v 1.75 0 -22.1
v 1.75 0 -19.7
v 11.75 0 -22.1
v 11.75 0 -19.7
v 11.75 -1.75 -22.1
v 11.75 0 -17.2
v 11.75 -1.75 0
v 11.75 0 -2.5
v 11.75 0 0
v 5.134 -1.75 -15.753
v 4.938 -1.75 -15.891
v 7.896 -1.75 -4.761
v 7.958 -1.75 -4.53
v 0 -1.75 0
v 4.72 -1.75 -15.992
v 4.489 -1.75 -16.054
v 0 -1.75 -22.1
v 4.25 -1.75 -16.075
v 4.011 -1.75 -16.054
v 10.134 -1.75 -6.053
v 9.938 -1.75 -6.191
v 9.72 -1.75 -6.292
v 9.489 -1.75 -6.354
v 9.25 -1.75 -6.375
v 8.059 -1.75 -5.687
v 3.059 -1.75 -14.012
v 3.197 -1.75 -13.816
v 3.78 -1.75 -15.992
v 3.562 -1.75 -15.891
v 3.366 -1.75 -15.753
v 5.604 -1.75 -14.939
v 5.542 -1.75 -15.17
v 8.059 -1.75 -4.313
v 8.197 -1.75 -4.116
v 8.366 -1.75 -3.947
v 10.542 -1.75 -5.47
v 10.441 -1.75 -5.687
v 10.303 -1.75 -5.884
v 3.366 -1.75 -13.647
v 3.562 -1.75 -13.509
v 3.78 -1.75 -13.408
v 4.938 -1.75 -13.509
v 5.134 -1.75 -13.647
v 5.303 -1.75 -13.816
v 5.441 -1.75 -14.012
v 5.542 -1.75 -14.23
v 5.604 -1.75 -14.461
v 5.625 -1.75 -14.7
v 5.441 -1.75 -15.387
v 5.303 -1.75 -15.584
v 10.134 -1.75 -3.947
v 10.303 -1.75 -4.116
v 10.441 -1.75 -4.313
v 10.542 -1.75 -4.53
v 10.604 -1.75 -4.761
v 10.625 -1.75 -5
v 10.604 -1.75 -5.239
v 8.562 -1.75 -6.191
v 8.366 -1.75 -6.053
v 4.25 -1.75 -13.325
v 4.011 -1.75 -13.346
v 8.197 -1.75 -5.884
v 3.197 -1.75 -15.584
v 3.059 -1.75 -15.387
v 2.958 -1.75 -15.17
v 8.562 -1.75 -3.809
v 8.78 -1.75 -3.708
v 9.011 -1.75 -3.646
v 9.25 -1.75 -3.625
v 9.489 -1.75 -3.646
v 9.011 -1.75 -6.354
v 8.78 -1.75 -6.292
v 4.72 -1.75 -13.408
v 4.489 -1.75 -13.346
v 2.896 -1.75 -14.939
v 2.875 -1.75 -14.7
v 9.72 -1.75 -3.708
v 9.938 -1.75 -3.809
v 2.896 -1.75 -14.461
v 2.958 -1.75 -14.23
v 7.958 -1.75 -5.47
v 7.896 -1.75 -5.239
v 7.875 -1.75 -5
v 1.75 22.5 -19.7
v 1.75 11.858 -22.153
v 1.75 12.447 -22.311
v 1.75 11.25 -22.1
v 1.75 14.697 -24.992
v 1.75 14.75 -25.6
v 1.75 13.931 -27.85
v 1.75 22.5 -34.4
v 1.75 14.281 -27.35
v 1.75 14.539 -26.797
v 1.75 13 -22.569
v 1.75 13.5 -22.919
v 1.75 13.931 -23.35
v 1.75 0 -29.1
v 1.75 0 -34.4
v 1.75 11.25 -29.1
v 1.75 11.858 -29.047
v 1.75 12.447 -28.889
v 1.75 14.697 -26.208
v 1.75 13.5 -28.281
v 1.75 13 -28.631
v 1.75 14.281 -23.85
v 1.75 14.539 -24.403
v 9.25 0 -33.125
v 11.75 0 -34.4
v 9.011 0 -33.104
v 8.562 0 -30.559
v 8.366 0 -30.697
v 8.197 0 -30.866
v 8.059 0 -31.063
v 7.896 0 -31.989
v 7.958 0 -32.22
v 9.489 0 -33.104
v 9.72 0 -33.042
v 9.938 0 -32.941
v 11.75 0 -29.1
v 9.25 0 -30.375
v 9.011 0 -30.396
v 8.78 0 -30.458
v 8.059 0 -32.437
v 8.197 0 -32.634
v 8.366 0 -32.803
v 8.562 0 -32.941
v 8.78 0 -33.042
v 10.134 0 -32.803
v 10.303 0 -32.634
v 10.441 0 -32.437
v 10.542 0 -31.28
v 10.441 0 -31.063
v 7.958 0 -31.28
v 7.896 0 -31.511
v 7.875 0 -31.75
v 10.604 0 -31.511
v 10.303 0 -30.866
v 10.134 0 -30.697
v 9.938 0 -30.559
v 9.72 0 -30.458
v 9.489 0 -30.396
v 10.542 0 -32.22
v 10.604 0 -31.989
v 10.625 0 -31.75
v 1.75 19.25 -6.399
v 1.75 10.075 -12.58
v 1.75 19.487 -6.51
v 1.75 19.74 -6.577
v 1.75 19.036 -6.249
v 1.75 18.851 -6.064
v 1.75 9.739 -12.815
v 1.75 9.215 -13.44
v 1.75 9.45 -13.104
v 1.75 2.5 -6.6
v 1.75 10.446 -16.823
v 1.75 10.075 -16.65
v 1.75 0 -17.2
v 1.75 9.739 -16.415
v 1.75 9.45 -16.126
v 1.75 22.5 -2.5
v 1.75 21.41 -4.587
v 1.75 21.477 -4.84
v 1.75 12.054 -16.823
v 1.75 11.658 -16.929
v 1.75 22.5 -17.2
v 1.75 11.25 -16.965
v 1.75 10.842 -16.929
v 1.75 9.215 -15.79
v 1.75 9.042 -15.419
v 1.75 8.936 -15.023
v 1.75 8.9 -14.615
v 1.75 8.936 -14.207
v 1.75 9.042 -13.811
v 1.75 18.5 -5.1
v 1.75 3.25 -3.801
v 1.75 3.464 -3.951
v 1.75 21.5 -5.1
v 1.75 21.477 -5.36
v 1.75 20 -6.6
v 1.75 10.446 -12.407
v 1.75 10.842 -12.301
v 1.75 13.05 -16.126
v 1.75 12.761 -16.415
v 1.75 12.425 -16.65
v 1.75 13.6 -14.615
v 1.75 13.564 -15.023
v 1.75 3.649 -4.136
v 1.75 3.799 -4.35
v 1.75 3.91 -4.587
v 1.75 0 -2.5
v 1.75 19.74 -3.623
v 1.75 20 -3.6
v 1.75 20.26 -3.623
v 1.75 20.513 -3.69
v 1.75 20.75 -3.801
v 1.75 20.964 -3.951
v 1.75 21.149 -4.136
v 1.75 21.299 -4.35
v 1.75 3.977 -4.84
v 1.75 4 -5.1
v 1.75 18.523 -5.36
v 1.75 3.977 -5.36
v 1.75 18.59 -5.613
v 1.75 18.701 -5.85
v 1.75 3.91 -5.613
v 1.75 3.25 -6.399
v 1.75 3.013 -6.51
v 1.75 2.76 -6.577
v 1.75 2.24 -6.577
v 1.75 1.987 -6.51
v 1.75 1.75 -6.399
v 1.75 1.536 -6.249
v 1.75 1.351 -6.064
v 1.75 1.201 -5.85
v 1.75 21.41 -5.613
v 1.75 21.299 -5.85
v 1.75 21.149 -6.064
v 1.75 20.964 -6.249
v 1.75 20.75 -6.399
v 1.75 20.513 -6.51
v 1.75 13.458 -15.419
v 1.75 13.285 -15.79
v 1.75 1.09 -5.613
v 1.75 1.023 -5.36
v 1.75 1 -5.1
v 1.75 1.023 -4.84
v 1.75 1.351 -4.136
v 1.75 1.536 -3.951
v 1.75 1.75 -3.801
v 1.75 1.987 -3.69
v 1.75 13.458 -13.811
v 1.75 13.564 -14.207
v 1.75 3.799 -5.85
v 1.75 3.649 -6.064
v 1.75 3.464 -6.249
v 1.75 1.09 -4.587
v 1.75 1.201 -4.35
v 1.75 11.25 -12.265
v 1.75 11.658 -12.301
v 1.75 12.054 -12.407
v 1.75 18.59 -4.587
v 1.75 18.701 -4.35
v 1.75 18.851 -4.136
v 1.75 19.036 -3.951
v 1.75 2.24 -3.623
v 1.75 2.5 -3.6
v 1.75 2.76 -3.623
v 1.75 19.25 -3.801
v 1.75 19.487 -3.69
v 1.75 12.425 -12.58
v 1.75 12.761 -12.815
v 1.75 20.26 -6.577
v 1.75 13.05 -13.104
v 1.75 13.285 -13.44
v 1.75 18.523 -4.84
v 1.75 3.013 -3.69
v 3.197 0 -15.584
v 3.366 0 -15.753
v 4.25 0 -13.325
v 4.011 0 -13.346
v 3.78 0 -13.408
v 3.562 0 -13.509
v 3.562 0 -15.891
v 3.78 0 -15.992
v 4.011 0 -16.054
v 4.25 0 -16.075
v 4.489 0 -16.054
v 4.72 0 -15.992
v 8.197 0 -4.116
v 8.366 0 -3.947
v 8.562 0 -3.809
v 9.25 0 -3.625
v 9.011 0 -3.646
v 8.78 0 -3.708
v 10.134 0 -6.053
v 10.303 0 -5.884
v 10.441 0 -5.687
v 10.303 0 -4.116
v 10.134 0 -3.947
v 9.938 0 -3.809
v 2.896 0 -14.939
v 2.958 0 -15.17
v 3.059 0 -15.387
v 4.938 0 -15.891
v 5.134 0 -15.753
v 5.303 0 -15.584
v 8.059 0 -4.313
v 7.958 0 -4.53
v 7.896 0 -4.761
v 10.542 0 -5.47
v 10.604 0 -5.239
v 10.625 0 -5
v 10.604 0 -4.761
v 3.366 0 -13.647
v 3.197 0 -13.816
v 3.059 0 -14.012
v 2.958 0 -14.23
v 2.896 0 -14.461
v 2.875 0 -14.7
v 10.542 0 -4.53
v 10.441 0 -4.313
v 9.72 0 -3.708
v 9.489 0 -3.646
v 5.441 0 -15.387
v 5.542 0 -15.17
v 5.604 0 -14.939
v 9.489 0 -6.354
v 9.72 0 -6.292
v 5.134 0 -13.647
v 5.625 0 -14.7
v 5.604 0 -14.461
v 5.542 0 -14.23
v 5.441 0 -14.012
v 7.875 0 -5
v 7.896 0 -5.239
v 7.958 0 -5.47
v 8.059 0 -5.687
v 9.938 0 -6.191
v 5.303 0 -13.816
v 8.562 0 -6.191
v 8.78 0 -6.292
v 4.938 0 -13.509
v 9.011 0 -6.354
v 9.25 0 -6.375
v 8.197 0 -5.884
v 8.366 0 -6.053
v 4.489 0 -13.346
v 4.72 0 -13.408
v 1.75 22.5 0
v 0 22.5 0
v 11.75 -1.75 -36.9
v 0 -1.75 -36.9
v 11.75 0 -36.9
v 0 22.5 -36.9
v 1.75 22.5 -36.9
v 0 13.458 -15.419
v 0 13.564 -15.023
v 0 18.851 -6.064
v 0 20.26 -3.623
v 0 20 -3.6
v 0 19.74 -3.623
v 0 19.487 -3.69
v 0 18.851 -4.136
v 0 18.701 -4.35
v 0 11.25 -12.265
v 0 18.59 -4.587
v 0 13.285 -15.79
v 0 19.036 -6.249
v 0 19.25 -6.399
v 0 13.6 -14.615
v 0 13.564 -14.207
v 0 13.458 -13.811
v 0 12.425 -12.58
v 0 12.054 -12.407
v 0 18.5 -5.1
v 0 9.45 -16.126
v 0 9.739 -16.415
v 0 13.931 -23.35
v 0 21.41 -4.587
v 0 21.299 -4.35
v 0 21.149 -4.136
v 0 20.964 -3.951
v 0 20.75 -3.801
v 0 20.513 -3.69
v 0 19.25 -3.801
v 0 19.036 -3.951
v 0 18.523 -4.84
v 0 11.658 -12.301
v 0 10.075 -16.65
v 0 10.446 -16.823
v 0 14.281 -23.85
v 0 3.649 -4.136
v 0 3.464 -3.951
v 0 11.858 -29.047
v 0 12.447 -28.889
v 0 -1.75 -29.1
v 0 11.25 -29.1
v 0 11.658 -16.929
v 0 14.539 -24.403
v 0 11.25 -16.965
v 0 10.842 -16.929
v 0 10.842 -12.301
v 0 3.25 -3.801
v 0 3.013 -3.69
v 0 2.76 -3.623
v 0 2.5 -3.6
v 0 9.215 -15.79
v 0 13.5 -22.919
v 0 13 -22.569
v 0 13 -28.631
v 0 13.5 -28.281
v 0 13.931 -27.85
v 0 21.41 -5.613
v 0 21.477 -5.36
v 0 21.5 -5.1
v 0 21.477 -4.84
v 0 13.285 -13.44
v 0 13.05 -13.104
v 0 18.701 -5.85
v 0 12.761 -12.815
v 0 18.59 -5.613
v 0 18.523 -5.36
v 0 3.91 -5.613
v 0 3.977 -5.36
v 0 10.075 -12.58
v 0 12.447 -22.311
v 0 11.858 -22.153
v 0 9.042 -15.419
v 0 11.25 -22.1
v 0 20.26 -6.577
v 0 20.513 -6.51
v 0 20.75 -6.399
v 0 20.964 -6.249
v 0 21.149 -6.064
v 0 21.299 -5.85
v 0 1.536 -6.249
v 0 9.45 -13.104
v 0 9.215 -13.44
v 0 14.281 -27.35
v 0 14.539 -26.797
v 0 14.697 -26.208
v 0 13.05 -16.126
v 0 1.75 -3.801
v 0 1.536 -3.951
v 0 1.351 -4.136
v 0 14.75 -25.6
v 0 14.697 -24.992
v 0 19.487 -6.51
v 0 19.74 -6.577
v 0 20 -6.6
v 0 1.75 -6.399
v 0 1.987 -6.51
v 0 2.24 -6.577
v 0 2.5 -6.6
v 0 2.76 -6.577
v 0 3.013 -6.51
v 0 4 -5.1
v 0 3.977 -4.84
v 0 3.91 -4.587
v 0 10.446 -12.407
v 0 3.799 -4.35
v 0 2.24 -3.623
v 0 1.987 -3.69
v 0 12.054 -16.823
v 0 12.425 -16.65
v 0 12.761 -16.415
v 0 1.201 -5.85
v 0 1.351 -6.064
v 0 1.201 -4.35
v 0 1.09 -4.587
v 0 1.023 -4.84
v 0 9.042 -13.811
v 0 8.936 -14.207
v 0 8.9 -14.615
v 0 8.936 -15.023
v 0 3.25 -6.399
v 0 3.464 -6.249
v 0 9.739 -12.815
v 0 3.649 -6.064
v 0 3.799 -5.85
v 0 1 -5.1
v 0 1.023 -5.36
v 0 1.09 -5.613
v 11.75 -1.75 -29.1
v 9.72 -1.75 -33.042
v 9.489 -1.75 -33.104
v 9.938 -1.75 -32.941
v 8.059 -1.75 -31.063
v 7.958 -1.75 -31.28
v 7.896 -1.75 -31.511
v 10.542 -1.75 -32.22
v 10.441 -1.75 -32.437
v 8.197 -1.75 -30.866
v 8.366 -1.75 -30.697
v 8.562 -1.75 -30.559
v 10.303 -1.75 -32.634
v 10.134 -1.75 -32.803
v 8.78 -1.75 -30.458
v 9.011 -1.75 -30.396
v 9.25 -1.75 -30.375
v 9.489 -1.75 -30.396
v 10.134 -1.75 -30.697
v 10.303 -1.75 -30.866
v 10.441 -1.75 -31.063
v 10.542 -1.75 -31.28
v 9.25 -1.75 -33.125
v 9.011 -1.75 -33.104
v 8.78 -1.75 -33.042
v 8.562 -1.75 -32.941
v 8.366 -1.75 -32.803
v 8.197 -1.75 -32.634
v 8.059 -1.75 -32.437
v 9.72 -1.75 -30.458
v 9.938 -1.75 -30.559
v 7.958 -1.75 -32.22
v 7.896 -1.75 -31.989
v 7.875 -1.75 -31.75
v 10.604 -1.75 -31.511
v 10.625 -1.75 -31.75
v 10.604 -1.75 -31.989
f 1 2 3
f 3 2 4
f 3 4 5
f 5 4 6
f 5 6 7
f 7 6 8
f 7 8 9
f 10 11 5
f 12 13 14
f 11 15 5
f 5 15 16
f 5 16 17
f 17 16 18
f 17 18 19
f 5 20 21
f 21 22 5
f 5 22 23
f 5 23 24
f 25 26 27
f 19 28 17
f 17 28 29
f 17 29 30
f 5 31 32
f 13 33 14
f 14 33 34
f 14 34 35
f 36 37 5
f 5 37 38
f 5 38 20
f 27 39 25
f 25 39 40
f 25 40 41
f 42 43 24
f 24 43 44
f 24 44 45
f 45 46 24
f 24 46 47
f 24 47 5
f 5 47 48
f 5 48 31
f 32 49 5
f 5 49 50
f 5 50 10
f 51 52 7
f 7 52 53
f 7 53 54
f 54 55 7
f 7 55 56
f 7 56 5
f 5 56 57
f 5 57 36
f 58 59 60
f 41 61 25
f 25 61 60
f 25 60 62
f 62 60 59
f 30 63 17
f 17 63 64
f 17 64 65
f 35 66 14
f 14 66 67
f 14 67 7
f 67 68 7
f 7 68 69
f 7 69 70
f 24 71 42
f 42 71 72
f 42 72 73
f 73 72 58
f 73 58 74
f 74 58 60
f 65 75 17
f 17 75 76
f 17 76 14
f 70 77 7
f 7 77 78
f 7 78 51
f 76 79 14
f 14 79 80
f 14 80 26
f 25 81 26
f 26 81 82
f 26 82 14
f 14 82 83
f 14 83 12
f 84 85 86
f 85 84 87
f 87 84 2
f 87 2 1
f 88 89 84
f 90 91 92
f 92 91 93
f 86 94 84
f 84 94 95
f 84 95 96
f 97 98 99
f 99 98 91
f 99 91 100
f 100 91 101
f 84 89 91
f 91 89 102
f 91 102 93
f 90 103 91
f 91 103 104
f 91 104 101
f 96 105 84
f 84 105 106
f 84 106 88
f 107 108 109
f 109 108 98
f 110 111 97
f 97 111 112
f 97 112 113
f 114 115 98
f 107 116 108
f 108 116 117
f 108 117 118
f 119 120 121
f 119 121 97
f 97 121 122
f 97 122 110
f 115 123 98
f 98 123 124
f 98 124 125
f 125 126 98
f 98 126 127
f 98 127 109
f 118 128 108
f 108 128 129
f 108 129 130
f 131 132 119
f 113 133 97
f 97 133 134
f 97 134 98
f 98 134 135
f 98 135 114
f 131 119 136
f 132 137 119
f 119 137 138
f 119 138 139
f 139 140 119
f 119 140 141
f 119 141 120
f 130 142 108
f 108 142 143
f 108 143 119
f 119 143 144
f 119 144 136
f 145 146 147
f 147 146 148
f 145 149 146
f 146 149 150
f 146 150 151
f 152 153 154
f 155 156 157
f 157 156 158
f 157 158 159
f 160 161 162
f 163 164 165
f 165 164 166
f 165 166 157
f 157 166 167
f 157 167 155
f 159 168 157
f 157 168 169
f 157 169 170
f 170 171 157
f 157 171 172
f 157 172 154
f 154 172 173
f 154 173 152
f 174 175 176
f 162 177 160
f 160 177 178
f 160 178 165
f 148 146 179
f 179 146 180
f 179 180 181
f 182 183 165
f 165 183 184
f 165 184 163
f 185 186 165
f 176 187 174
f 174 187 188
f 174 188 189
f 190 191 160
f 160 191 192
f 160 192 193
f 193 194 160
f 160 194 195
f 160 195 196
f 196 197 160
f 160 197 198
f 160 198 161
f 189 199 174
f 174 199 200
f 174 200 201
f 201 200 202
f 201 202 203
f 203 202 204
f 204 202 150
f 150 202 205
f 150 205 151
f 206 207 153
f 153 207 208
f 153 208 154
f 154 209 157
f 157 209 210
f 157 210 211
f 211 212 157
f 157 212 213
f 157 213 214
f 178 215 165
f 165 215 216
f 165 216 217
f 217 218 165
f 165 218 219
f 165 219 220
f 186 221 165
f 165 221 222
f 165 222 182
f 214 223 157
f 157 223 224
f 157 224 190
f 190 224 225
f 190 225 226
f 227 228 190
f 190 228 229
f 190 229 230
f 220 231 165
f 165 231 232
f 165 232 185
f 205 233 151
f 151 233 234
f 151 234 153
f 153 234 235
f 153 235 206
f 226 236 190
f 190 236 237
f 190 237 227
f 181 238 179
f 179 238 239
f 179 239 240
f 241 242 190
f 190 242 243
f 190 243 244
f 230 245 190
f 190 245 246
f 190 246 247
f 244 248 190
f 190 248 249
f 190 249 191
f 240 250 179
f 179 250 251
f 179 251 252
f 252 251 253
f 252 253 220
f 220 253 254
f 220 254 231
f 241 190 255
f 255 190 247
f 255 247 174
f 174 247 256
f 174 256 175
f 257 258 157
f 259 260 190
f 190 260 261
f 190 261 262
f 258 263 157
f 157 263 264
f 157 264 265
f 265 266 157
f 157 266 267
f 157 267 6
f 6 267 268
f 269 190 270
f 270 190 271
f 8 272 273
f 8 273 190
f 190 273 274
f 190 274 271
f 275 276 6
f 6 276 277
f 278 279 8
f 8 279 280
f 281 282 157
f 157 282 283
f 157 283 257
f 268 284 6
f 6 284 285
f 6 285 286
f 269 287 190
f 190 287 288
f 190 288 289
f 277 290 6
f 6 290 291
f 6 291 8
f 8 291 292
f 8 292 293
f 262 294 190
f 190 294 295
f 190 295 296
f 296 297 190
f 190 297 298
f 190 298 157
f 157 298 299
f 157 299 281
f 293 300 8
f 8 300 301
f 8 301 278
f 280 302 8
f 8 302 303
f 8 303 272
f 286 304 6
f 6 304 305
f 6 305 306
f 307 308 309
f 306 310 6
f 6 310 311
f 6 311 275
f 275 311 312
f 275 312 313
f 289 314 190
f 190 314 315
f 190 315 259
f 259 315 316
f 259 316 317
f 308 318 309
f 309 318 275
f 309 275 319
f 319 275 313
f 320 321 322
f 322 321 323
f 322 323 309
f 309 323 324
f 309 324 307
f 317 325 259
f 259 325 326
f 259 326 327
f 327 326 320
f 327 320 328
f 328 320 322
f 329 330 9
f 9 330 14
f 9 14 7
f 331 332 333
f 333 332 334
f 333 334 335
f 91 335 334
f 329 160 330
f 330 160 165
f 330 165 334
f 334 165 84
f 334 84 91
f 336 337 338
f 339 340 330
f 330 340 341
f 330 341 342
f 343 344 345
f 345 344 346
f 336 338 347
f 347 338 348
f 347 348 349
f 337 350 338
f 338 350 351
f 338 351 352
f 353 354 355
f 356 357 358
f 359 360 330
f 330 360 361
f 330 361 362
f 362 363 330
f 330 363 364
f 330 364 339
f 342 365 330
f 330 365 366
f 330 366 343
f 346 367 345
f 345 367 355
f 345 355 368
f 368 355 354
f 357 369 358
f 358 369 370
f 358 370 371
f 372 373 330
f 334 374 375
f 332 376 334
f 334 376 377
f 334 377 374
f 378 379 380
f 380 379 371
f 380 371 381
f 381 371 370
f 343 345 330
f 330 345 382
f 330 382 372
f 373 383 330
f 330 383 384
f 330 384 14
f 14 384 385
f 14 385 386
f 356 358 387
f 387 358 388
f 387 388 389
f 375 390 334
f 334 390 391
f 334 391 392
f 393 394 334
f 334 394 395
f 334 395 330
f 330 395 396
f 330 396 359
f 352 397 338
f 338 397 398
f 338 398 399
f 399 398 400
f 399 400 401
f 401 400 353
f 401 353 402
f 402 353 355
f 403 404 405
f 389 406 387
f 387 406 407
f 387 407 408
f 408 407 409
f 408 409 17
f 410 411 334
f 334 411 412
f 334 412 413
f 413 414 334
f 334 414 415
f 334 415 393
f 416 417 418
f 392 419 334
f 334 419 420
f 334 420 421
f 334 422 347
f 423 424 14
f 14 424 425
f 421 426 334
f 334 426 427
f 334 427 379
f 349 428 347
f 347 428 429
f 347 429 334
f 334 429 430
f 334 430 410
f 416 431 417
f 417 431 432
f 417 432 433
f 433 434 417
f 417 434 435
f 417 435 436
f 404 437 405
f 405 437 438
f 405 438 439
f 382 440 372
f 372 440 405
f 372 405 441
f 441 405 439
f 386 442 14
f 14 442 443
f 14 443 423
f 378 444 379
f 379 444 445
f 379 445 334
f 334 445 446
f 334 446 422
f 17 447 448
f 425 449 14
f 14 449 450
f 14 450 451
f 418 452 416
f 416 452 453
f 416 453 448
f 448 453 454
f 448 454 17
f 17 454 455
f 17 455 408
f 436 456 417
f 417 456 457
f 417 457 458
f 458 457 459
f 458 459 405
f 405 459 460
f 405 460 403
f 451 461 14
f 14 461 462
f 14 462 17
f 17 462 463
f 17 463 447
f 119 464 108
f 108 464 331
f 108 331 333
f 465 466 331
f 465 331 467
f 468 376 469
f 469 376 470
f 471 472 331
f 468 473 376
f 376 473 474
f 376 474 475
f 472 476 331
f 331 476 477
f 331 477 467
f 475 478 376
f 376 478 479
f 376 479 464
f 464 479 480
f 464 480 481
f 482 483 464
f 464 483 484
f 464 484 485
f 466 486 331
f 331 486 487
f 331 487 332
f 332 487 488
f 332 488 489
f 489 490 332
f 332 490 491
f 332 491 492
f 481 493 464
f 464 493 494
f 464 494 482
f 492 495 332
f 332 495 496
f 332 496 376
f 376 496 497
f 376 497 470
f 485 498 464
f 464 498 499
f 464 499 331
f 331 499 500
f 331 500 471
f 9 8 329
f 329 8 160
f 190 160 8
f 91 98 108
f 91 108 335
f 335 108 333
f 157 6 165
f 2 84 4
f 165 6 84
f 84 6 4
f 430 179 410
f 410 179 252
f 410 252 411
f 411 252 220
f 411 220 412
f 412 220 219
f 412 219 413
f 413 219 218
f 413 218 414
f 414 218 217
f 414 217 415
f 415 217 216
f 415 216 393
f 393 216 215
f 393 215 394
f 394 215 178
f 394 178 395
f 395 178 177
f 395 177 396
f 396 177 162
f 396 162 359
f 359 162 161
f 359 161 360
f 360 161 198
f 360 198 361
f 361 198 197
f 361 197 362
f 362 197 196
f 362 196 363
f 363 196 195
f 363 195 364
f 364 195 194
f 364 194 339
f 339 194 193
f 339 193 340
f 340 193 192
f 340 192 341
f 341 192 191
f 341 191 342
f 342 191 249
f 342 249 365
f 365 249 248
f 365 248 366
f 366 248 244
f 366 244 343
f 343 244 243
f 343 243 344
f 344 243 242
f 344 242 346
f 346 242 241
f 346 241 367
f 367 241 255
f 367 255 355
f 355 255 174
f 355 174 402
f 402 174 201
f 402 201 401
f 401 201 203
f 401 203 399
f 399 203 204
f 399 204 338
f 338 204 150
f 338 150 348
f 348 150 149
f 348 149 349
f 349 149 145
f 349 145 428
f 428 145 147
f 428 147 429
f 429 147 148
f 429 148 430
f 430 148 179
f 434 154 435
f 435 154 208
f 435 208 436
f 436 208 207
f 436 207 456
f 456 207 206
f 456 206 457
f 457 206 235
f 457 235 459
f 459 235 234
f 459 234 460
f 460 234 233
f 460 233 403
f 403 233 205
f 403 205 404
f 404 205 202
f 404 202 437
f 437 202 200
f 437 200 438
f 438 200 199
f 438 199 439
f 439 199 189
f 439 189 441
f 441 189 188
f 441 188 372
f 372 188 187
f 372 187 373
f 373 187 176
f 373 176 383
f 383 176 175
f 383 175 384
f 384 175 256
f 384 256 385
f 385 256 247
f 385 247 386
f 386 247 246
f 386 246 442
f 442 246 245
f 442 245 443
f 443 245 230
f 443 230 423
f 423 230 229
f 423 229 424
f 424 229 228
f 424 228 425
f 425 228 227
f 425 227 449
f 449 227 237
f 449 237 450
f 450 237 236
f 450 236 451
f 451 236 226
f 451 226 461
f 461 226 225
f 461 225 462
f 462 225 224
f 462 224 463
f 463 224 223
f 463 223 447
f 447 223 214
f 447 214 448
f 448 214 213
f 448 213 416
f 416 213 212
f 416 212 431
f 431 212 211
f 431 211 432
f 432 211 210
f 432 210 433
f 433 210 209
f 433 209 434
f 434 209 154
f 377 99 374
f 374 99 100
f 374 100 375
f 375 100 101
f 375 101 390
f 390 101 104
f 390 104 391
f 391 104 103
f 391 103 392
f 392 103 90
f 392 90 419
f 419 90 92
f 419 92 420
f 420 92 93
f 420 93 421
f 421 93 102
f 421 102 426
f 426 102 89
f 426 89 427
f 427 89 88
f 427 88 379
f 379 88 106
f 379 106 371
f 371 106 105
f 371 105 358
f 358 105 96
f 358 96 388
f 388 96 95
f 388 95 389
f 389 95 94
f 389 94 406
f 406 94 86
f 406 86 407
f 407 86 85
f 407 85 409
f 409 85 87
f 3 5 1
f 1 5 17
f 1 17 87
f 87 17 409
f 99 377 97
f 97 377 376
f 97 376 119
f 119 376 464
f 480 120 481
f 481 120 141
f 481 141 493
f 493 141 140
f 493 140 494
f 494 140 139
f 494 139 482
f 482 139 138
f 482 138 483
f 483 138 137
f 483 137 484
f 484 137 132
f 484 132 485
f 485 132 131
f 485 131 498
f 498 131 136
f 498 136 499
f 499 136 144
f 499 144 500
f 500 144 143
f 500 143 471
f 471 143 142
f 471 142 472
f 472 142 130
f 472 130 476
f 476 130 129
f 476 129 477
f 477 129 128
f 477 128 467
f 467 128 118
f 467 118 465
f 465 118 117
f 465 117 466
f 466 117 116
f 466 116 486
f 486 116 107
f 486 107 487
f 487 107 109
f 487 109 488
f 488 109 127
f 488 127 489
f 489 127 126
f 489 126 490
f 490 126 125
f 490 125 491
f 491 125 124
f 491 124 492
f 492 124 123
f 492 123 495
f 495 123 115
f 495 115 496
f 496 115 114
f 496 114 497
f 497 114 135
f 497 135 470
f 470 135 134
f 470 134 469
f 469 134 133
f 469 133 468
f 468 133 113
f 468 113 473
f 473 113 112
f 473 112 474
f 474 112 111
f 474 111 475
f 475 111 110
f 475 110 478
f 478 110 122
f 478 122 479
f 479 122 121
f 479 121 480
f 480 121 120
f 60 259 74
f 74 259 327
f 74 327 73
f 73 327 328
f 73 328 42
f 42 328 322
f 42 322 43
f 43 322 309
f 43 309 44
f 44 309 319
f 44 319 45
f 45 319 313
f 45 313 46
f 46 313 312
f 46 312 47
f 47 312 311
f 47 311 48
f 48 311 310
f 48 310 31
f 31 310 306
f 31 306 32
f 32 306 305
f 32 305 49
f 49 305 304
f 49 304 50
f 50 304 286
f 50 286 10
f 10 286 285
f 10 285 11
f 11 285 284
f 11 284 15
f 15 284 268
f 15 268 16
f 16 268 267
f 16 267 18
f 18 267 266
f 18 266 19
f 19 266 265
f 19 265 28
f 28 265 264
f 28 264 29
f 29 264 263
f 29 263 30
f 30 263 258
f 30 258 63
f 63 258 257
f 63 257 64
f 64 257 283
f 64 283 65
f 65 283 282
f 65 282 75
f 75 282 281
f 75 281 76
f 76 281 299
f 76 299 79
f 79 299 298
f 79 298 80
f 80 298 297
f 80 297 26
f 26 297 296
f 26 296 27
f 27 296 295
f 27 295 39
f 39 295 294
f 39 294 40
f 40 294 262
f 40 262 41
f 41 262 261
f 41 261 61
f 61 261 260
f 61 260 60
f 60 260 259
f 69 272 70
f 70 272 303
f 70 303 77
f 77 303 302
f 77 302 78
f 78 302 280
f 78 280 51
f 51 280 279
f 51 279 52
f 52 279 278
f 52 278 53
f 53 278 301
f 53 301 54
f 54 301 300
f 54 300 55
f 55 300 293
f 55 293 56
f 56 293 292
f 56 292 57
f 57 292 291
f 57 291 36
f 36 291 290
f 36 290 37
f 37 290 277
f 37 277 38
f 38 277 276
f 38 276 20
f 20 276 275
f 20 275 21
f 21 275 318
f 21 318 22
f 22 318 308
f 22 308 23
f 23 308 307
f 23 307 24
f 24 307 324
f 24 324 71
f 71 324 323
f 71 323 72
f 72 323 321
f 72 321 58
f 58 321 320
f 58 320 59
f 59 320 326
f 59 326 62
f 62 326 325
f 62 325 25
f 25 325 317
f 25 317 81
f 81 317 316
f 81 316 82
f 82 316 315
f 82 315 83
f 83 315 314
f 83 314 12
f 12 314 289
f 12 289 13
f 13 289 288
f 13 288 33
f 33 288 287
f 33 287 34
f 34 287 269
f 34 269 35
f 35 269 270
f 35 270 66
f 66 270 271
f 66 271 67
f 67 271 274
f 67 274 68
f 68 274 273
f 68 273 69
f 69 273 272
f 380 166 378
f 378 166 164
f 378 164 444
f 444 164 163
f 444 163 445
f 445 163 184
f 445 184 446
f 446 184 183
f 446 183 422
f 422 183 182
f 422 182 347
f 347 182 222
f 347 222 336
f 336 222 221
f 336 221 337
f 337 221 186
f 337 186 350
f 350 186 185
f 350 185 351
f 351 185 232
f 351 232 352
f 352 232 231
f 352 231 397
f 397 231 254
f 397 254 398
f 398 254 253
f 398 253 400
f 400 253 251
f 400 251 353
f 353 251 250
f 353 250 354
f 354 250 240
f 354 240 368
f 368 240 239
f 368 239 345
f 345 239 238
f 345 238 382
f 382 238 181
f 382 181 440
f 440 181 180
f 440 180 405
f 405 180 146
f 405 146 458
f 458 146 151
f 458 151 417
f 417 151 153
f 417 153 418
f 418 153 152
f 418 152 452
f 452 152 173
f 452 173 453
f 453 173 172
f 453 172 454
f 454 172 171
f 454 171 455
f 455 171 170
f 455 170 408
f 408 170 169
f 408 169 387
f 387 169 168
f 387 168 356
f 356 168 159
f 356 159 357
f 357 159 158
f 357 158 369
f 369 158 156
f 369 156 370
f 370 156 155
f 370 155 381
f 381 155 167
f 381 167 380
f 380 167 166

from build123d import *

# Parameters (mm, degrees)
SKETCH1_W                   = 36.9
SKETCH1_H                   = 22.5
BASEPLATE_DEPTH             = 1.75
SKETCH2_W                   = 11.75
SKETCH2_H                   = 36.9
BOSS_EXTRUDE2_DEPTH         = 1.75
SUPPORT1_REACH              = 46.788
SKETCH3_WALL_W              = 116.197196834
SKETCH3_WALL_H              = 2.5
SUPPORT3_REACH              = 33.38
SKETCH4_WALL_W              = 89.382482298
SKETCH4_WALL_H              = 2.5
SKETCH5_R                   = 1.5
MOTOR_MOUNTINGHOLES_DEPTH   = 45.360568076
SHAFTSLOT_DEPTH             = 45.787526165
SKETCH8_R                   = 1.375
CHASSIS_MOUNTINGHOLES_DEPTH = 45.787526165
SKETCH9_R                   = 2.35
INDENTHOLE_DEPTH            = 10


with BuildPart() as part:
    # Sketch1 → basePlate (new body)
    with BuildSketch(Plane(origin=(0, 0, 0), x_dir=(0, 0, -1), z_dir=(1, 0, 0))):
        with Locations((18.45, 11.25)):
            Rectangle(SKETCH1_W, SKETCH1_H)
    extrude(amount=BASEPLATE_DEPTH)

    # Sketch2 → Boss-Extrude2 (add)
    with BuildSketch(Plane.XZ):
        with Locations((5.875, -18.45)):
            Rectangle(SKETCH2_W, SKETCH2_H)
    extrude(amount=BOSS_EXTRUDE2_DEPTH)

    # Sketch3 wall → support1 (add, up to next)
    with BuildSketch(Plane(origin=(6.75, 11.25, 0), x_dir=(0.406138466053, -0.91381154862, 0), z_dir=(0.91381154862, 0.406138466053, 0)), mode=Mode.PRIVATE) as support1_sk1:
        with Locations((0, 1.25)):
            Rectangle(SKETCH3_WALL_W, SKETCH3_WALL_H)
    support1_tool1 = extrude(support1_sk1.sketch, amount=-SUPPORT1_REACH, mode=Mode.PRIVATE) - part.part
    support1 = support1_tool1.solids().sort_by_distance((6.75, 11.25, 0))[0]
    add(support1)

    # support2: support1 across plane
    add(support1.mirror(Plane.XY.offset(-18.45)))

    # Sketch4 wall → support3 (add, up to next)
    with BuildSketch(Plane(origin=(6.75, 11.25, -18.45), x_dir=(0.406138466053, -0.91381154862, 0), z_dir=(0.91381154862, 0.406138466053, 0)), mode=Mode.PRIVATE) as support3_sk1:
        Rectangle(SKETCH4_WALL_W, SKETCH4_WALL_H)
    support3_tool1 = extrude(support3_sk1.sketch, amount=-SUPPORT3_REACH, mode=Mode.PRIVATE) - part.part
    add(support3_tool1.solids().sort_by_distance((6.75, 11.25, -18.45))[0])

    # Sketch5 → motor_mountingHoles (cut, through all)
    with BuildSketch(Plane(origin=(1.75, 0, 0), x_dir=(0, 0, -1), z_dir=(1, 0, 0))):
        with Locations((5.1, 2.5)):
            Circle(SKETCH5_R)
        with Locations((5.1, 20)):
            Circle(SKETCH5_R)
    extrude(amount=-MOTOR_MOUNTINGHOLES_DEPTH, mode=Mode.SUBTRACT)

    # Sketch7 → shaftSlot (cut, through all)
    with BuildSketch(Plane(origin=(11.75, 0, 0), x_dir=(0, 0, -1), z_dir=(1, 0, 0))):
        with BuildLine():
            Line((22.1, -1.75), (22.1, 11.25))
            ThreePointArc((22.1, 11.25), (25.6, 14.75), (29.1, 11.25))
            Line((29.1, 11.25), (29.1, -1.75))
            Line((29.1, -1.75), (22.1, -1.75))
        make_face()
    extrude(amount=-SHAFTSLOT_DEPTH, mode=Mode.SUBTRACT)

    # Sketch8 → chassis_mountingHoles (cut, through all)
    with BuildSketch(Plane(origin=(0, 0, 0), x_dir=(1, 0, 0), z_dir=(0, 1, 0))):
        with Locations(Location((9.25, 5, 0), (0, 0, 270))):
            Circle(SKETCH8_R)
        with Locations(Location((4.25, 14.7, 0), (0, 0, 270))):
            Circle(SKETCH8_R)
        with Locations(Location((9.25, 31.75, 0), (0, 0, 270))):
            Circle(SKETCH8_R)
    extrude(amount=-CHASSIS_MOUNTINGHOLES_DEPTH, mode=Mode.SUBTRACT)

    # Sketch9 → indentHole (cut)
    with BuildSketch(Plane(origin=(1.75, 0, 0), x_dir=(0, 0, -1), z_dir=(1, 0, 0))):
        with Locations((14.615, 11.25)):
            Circle(SKETCH9_R)
    extrude(amount=-INDENTHOLE_DEPTH, mode=Mode.SUBTRACT)


solid = part.part
